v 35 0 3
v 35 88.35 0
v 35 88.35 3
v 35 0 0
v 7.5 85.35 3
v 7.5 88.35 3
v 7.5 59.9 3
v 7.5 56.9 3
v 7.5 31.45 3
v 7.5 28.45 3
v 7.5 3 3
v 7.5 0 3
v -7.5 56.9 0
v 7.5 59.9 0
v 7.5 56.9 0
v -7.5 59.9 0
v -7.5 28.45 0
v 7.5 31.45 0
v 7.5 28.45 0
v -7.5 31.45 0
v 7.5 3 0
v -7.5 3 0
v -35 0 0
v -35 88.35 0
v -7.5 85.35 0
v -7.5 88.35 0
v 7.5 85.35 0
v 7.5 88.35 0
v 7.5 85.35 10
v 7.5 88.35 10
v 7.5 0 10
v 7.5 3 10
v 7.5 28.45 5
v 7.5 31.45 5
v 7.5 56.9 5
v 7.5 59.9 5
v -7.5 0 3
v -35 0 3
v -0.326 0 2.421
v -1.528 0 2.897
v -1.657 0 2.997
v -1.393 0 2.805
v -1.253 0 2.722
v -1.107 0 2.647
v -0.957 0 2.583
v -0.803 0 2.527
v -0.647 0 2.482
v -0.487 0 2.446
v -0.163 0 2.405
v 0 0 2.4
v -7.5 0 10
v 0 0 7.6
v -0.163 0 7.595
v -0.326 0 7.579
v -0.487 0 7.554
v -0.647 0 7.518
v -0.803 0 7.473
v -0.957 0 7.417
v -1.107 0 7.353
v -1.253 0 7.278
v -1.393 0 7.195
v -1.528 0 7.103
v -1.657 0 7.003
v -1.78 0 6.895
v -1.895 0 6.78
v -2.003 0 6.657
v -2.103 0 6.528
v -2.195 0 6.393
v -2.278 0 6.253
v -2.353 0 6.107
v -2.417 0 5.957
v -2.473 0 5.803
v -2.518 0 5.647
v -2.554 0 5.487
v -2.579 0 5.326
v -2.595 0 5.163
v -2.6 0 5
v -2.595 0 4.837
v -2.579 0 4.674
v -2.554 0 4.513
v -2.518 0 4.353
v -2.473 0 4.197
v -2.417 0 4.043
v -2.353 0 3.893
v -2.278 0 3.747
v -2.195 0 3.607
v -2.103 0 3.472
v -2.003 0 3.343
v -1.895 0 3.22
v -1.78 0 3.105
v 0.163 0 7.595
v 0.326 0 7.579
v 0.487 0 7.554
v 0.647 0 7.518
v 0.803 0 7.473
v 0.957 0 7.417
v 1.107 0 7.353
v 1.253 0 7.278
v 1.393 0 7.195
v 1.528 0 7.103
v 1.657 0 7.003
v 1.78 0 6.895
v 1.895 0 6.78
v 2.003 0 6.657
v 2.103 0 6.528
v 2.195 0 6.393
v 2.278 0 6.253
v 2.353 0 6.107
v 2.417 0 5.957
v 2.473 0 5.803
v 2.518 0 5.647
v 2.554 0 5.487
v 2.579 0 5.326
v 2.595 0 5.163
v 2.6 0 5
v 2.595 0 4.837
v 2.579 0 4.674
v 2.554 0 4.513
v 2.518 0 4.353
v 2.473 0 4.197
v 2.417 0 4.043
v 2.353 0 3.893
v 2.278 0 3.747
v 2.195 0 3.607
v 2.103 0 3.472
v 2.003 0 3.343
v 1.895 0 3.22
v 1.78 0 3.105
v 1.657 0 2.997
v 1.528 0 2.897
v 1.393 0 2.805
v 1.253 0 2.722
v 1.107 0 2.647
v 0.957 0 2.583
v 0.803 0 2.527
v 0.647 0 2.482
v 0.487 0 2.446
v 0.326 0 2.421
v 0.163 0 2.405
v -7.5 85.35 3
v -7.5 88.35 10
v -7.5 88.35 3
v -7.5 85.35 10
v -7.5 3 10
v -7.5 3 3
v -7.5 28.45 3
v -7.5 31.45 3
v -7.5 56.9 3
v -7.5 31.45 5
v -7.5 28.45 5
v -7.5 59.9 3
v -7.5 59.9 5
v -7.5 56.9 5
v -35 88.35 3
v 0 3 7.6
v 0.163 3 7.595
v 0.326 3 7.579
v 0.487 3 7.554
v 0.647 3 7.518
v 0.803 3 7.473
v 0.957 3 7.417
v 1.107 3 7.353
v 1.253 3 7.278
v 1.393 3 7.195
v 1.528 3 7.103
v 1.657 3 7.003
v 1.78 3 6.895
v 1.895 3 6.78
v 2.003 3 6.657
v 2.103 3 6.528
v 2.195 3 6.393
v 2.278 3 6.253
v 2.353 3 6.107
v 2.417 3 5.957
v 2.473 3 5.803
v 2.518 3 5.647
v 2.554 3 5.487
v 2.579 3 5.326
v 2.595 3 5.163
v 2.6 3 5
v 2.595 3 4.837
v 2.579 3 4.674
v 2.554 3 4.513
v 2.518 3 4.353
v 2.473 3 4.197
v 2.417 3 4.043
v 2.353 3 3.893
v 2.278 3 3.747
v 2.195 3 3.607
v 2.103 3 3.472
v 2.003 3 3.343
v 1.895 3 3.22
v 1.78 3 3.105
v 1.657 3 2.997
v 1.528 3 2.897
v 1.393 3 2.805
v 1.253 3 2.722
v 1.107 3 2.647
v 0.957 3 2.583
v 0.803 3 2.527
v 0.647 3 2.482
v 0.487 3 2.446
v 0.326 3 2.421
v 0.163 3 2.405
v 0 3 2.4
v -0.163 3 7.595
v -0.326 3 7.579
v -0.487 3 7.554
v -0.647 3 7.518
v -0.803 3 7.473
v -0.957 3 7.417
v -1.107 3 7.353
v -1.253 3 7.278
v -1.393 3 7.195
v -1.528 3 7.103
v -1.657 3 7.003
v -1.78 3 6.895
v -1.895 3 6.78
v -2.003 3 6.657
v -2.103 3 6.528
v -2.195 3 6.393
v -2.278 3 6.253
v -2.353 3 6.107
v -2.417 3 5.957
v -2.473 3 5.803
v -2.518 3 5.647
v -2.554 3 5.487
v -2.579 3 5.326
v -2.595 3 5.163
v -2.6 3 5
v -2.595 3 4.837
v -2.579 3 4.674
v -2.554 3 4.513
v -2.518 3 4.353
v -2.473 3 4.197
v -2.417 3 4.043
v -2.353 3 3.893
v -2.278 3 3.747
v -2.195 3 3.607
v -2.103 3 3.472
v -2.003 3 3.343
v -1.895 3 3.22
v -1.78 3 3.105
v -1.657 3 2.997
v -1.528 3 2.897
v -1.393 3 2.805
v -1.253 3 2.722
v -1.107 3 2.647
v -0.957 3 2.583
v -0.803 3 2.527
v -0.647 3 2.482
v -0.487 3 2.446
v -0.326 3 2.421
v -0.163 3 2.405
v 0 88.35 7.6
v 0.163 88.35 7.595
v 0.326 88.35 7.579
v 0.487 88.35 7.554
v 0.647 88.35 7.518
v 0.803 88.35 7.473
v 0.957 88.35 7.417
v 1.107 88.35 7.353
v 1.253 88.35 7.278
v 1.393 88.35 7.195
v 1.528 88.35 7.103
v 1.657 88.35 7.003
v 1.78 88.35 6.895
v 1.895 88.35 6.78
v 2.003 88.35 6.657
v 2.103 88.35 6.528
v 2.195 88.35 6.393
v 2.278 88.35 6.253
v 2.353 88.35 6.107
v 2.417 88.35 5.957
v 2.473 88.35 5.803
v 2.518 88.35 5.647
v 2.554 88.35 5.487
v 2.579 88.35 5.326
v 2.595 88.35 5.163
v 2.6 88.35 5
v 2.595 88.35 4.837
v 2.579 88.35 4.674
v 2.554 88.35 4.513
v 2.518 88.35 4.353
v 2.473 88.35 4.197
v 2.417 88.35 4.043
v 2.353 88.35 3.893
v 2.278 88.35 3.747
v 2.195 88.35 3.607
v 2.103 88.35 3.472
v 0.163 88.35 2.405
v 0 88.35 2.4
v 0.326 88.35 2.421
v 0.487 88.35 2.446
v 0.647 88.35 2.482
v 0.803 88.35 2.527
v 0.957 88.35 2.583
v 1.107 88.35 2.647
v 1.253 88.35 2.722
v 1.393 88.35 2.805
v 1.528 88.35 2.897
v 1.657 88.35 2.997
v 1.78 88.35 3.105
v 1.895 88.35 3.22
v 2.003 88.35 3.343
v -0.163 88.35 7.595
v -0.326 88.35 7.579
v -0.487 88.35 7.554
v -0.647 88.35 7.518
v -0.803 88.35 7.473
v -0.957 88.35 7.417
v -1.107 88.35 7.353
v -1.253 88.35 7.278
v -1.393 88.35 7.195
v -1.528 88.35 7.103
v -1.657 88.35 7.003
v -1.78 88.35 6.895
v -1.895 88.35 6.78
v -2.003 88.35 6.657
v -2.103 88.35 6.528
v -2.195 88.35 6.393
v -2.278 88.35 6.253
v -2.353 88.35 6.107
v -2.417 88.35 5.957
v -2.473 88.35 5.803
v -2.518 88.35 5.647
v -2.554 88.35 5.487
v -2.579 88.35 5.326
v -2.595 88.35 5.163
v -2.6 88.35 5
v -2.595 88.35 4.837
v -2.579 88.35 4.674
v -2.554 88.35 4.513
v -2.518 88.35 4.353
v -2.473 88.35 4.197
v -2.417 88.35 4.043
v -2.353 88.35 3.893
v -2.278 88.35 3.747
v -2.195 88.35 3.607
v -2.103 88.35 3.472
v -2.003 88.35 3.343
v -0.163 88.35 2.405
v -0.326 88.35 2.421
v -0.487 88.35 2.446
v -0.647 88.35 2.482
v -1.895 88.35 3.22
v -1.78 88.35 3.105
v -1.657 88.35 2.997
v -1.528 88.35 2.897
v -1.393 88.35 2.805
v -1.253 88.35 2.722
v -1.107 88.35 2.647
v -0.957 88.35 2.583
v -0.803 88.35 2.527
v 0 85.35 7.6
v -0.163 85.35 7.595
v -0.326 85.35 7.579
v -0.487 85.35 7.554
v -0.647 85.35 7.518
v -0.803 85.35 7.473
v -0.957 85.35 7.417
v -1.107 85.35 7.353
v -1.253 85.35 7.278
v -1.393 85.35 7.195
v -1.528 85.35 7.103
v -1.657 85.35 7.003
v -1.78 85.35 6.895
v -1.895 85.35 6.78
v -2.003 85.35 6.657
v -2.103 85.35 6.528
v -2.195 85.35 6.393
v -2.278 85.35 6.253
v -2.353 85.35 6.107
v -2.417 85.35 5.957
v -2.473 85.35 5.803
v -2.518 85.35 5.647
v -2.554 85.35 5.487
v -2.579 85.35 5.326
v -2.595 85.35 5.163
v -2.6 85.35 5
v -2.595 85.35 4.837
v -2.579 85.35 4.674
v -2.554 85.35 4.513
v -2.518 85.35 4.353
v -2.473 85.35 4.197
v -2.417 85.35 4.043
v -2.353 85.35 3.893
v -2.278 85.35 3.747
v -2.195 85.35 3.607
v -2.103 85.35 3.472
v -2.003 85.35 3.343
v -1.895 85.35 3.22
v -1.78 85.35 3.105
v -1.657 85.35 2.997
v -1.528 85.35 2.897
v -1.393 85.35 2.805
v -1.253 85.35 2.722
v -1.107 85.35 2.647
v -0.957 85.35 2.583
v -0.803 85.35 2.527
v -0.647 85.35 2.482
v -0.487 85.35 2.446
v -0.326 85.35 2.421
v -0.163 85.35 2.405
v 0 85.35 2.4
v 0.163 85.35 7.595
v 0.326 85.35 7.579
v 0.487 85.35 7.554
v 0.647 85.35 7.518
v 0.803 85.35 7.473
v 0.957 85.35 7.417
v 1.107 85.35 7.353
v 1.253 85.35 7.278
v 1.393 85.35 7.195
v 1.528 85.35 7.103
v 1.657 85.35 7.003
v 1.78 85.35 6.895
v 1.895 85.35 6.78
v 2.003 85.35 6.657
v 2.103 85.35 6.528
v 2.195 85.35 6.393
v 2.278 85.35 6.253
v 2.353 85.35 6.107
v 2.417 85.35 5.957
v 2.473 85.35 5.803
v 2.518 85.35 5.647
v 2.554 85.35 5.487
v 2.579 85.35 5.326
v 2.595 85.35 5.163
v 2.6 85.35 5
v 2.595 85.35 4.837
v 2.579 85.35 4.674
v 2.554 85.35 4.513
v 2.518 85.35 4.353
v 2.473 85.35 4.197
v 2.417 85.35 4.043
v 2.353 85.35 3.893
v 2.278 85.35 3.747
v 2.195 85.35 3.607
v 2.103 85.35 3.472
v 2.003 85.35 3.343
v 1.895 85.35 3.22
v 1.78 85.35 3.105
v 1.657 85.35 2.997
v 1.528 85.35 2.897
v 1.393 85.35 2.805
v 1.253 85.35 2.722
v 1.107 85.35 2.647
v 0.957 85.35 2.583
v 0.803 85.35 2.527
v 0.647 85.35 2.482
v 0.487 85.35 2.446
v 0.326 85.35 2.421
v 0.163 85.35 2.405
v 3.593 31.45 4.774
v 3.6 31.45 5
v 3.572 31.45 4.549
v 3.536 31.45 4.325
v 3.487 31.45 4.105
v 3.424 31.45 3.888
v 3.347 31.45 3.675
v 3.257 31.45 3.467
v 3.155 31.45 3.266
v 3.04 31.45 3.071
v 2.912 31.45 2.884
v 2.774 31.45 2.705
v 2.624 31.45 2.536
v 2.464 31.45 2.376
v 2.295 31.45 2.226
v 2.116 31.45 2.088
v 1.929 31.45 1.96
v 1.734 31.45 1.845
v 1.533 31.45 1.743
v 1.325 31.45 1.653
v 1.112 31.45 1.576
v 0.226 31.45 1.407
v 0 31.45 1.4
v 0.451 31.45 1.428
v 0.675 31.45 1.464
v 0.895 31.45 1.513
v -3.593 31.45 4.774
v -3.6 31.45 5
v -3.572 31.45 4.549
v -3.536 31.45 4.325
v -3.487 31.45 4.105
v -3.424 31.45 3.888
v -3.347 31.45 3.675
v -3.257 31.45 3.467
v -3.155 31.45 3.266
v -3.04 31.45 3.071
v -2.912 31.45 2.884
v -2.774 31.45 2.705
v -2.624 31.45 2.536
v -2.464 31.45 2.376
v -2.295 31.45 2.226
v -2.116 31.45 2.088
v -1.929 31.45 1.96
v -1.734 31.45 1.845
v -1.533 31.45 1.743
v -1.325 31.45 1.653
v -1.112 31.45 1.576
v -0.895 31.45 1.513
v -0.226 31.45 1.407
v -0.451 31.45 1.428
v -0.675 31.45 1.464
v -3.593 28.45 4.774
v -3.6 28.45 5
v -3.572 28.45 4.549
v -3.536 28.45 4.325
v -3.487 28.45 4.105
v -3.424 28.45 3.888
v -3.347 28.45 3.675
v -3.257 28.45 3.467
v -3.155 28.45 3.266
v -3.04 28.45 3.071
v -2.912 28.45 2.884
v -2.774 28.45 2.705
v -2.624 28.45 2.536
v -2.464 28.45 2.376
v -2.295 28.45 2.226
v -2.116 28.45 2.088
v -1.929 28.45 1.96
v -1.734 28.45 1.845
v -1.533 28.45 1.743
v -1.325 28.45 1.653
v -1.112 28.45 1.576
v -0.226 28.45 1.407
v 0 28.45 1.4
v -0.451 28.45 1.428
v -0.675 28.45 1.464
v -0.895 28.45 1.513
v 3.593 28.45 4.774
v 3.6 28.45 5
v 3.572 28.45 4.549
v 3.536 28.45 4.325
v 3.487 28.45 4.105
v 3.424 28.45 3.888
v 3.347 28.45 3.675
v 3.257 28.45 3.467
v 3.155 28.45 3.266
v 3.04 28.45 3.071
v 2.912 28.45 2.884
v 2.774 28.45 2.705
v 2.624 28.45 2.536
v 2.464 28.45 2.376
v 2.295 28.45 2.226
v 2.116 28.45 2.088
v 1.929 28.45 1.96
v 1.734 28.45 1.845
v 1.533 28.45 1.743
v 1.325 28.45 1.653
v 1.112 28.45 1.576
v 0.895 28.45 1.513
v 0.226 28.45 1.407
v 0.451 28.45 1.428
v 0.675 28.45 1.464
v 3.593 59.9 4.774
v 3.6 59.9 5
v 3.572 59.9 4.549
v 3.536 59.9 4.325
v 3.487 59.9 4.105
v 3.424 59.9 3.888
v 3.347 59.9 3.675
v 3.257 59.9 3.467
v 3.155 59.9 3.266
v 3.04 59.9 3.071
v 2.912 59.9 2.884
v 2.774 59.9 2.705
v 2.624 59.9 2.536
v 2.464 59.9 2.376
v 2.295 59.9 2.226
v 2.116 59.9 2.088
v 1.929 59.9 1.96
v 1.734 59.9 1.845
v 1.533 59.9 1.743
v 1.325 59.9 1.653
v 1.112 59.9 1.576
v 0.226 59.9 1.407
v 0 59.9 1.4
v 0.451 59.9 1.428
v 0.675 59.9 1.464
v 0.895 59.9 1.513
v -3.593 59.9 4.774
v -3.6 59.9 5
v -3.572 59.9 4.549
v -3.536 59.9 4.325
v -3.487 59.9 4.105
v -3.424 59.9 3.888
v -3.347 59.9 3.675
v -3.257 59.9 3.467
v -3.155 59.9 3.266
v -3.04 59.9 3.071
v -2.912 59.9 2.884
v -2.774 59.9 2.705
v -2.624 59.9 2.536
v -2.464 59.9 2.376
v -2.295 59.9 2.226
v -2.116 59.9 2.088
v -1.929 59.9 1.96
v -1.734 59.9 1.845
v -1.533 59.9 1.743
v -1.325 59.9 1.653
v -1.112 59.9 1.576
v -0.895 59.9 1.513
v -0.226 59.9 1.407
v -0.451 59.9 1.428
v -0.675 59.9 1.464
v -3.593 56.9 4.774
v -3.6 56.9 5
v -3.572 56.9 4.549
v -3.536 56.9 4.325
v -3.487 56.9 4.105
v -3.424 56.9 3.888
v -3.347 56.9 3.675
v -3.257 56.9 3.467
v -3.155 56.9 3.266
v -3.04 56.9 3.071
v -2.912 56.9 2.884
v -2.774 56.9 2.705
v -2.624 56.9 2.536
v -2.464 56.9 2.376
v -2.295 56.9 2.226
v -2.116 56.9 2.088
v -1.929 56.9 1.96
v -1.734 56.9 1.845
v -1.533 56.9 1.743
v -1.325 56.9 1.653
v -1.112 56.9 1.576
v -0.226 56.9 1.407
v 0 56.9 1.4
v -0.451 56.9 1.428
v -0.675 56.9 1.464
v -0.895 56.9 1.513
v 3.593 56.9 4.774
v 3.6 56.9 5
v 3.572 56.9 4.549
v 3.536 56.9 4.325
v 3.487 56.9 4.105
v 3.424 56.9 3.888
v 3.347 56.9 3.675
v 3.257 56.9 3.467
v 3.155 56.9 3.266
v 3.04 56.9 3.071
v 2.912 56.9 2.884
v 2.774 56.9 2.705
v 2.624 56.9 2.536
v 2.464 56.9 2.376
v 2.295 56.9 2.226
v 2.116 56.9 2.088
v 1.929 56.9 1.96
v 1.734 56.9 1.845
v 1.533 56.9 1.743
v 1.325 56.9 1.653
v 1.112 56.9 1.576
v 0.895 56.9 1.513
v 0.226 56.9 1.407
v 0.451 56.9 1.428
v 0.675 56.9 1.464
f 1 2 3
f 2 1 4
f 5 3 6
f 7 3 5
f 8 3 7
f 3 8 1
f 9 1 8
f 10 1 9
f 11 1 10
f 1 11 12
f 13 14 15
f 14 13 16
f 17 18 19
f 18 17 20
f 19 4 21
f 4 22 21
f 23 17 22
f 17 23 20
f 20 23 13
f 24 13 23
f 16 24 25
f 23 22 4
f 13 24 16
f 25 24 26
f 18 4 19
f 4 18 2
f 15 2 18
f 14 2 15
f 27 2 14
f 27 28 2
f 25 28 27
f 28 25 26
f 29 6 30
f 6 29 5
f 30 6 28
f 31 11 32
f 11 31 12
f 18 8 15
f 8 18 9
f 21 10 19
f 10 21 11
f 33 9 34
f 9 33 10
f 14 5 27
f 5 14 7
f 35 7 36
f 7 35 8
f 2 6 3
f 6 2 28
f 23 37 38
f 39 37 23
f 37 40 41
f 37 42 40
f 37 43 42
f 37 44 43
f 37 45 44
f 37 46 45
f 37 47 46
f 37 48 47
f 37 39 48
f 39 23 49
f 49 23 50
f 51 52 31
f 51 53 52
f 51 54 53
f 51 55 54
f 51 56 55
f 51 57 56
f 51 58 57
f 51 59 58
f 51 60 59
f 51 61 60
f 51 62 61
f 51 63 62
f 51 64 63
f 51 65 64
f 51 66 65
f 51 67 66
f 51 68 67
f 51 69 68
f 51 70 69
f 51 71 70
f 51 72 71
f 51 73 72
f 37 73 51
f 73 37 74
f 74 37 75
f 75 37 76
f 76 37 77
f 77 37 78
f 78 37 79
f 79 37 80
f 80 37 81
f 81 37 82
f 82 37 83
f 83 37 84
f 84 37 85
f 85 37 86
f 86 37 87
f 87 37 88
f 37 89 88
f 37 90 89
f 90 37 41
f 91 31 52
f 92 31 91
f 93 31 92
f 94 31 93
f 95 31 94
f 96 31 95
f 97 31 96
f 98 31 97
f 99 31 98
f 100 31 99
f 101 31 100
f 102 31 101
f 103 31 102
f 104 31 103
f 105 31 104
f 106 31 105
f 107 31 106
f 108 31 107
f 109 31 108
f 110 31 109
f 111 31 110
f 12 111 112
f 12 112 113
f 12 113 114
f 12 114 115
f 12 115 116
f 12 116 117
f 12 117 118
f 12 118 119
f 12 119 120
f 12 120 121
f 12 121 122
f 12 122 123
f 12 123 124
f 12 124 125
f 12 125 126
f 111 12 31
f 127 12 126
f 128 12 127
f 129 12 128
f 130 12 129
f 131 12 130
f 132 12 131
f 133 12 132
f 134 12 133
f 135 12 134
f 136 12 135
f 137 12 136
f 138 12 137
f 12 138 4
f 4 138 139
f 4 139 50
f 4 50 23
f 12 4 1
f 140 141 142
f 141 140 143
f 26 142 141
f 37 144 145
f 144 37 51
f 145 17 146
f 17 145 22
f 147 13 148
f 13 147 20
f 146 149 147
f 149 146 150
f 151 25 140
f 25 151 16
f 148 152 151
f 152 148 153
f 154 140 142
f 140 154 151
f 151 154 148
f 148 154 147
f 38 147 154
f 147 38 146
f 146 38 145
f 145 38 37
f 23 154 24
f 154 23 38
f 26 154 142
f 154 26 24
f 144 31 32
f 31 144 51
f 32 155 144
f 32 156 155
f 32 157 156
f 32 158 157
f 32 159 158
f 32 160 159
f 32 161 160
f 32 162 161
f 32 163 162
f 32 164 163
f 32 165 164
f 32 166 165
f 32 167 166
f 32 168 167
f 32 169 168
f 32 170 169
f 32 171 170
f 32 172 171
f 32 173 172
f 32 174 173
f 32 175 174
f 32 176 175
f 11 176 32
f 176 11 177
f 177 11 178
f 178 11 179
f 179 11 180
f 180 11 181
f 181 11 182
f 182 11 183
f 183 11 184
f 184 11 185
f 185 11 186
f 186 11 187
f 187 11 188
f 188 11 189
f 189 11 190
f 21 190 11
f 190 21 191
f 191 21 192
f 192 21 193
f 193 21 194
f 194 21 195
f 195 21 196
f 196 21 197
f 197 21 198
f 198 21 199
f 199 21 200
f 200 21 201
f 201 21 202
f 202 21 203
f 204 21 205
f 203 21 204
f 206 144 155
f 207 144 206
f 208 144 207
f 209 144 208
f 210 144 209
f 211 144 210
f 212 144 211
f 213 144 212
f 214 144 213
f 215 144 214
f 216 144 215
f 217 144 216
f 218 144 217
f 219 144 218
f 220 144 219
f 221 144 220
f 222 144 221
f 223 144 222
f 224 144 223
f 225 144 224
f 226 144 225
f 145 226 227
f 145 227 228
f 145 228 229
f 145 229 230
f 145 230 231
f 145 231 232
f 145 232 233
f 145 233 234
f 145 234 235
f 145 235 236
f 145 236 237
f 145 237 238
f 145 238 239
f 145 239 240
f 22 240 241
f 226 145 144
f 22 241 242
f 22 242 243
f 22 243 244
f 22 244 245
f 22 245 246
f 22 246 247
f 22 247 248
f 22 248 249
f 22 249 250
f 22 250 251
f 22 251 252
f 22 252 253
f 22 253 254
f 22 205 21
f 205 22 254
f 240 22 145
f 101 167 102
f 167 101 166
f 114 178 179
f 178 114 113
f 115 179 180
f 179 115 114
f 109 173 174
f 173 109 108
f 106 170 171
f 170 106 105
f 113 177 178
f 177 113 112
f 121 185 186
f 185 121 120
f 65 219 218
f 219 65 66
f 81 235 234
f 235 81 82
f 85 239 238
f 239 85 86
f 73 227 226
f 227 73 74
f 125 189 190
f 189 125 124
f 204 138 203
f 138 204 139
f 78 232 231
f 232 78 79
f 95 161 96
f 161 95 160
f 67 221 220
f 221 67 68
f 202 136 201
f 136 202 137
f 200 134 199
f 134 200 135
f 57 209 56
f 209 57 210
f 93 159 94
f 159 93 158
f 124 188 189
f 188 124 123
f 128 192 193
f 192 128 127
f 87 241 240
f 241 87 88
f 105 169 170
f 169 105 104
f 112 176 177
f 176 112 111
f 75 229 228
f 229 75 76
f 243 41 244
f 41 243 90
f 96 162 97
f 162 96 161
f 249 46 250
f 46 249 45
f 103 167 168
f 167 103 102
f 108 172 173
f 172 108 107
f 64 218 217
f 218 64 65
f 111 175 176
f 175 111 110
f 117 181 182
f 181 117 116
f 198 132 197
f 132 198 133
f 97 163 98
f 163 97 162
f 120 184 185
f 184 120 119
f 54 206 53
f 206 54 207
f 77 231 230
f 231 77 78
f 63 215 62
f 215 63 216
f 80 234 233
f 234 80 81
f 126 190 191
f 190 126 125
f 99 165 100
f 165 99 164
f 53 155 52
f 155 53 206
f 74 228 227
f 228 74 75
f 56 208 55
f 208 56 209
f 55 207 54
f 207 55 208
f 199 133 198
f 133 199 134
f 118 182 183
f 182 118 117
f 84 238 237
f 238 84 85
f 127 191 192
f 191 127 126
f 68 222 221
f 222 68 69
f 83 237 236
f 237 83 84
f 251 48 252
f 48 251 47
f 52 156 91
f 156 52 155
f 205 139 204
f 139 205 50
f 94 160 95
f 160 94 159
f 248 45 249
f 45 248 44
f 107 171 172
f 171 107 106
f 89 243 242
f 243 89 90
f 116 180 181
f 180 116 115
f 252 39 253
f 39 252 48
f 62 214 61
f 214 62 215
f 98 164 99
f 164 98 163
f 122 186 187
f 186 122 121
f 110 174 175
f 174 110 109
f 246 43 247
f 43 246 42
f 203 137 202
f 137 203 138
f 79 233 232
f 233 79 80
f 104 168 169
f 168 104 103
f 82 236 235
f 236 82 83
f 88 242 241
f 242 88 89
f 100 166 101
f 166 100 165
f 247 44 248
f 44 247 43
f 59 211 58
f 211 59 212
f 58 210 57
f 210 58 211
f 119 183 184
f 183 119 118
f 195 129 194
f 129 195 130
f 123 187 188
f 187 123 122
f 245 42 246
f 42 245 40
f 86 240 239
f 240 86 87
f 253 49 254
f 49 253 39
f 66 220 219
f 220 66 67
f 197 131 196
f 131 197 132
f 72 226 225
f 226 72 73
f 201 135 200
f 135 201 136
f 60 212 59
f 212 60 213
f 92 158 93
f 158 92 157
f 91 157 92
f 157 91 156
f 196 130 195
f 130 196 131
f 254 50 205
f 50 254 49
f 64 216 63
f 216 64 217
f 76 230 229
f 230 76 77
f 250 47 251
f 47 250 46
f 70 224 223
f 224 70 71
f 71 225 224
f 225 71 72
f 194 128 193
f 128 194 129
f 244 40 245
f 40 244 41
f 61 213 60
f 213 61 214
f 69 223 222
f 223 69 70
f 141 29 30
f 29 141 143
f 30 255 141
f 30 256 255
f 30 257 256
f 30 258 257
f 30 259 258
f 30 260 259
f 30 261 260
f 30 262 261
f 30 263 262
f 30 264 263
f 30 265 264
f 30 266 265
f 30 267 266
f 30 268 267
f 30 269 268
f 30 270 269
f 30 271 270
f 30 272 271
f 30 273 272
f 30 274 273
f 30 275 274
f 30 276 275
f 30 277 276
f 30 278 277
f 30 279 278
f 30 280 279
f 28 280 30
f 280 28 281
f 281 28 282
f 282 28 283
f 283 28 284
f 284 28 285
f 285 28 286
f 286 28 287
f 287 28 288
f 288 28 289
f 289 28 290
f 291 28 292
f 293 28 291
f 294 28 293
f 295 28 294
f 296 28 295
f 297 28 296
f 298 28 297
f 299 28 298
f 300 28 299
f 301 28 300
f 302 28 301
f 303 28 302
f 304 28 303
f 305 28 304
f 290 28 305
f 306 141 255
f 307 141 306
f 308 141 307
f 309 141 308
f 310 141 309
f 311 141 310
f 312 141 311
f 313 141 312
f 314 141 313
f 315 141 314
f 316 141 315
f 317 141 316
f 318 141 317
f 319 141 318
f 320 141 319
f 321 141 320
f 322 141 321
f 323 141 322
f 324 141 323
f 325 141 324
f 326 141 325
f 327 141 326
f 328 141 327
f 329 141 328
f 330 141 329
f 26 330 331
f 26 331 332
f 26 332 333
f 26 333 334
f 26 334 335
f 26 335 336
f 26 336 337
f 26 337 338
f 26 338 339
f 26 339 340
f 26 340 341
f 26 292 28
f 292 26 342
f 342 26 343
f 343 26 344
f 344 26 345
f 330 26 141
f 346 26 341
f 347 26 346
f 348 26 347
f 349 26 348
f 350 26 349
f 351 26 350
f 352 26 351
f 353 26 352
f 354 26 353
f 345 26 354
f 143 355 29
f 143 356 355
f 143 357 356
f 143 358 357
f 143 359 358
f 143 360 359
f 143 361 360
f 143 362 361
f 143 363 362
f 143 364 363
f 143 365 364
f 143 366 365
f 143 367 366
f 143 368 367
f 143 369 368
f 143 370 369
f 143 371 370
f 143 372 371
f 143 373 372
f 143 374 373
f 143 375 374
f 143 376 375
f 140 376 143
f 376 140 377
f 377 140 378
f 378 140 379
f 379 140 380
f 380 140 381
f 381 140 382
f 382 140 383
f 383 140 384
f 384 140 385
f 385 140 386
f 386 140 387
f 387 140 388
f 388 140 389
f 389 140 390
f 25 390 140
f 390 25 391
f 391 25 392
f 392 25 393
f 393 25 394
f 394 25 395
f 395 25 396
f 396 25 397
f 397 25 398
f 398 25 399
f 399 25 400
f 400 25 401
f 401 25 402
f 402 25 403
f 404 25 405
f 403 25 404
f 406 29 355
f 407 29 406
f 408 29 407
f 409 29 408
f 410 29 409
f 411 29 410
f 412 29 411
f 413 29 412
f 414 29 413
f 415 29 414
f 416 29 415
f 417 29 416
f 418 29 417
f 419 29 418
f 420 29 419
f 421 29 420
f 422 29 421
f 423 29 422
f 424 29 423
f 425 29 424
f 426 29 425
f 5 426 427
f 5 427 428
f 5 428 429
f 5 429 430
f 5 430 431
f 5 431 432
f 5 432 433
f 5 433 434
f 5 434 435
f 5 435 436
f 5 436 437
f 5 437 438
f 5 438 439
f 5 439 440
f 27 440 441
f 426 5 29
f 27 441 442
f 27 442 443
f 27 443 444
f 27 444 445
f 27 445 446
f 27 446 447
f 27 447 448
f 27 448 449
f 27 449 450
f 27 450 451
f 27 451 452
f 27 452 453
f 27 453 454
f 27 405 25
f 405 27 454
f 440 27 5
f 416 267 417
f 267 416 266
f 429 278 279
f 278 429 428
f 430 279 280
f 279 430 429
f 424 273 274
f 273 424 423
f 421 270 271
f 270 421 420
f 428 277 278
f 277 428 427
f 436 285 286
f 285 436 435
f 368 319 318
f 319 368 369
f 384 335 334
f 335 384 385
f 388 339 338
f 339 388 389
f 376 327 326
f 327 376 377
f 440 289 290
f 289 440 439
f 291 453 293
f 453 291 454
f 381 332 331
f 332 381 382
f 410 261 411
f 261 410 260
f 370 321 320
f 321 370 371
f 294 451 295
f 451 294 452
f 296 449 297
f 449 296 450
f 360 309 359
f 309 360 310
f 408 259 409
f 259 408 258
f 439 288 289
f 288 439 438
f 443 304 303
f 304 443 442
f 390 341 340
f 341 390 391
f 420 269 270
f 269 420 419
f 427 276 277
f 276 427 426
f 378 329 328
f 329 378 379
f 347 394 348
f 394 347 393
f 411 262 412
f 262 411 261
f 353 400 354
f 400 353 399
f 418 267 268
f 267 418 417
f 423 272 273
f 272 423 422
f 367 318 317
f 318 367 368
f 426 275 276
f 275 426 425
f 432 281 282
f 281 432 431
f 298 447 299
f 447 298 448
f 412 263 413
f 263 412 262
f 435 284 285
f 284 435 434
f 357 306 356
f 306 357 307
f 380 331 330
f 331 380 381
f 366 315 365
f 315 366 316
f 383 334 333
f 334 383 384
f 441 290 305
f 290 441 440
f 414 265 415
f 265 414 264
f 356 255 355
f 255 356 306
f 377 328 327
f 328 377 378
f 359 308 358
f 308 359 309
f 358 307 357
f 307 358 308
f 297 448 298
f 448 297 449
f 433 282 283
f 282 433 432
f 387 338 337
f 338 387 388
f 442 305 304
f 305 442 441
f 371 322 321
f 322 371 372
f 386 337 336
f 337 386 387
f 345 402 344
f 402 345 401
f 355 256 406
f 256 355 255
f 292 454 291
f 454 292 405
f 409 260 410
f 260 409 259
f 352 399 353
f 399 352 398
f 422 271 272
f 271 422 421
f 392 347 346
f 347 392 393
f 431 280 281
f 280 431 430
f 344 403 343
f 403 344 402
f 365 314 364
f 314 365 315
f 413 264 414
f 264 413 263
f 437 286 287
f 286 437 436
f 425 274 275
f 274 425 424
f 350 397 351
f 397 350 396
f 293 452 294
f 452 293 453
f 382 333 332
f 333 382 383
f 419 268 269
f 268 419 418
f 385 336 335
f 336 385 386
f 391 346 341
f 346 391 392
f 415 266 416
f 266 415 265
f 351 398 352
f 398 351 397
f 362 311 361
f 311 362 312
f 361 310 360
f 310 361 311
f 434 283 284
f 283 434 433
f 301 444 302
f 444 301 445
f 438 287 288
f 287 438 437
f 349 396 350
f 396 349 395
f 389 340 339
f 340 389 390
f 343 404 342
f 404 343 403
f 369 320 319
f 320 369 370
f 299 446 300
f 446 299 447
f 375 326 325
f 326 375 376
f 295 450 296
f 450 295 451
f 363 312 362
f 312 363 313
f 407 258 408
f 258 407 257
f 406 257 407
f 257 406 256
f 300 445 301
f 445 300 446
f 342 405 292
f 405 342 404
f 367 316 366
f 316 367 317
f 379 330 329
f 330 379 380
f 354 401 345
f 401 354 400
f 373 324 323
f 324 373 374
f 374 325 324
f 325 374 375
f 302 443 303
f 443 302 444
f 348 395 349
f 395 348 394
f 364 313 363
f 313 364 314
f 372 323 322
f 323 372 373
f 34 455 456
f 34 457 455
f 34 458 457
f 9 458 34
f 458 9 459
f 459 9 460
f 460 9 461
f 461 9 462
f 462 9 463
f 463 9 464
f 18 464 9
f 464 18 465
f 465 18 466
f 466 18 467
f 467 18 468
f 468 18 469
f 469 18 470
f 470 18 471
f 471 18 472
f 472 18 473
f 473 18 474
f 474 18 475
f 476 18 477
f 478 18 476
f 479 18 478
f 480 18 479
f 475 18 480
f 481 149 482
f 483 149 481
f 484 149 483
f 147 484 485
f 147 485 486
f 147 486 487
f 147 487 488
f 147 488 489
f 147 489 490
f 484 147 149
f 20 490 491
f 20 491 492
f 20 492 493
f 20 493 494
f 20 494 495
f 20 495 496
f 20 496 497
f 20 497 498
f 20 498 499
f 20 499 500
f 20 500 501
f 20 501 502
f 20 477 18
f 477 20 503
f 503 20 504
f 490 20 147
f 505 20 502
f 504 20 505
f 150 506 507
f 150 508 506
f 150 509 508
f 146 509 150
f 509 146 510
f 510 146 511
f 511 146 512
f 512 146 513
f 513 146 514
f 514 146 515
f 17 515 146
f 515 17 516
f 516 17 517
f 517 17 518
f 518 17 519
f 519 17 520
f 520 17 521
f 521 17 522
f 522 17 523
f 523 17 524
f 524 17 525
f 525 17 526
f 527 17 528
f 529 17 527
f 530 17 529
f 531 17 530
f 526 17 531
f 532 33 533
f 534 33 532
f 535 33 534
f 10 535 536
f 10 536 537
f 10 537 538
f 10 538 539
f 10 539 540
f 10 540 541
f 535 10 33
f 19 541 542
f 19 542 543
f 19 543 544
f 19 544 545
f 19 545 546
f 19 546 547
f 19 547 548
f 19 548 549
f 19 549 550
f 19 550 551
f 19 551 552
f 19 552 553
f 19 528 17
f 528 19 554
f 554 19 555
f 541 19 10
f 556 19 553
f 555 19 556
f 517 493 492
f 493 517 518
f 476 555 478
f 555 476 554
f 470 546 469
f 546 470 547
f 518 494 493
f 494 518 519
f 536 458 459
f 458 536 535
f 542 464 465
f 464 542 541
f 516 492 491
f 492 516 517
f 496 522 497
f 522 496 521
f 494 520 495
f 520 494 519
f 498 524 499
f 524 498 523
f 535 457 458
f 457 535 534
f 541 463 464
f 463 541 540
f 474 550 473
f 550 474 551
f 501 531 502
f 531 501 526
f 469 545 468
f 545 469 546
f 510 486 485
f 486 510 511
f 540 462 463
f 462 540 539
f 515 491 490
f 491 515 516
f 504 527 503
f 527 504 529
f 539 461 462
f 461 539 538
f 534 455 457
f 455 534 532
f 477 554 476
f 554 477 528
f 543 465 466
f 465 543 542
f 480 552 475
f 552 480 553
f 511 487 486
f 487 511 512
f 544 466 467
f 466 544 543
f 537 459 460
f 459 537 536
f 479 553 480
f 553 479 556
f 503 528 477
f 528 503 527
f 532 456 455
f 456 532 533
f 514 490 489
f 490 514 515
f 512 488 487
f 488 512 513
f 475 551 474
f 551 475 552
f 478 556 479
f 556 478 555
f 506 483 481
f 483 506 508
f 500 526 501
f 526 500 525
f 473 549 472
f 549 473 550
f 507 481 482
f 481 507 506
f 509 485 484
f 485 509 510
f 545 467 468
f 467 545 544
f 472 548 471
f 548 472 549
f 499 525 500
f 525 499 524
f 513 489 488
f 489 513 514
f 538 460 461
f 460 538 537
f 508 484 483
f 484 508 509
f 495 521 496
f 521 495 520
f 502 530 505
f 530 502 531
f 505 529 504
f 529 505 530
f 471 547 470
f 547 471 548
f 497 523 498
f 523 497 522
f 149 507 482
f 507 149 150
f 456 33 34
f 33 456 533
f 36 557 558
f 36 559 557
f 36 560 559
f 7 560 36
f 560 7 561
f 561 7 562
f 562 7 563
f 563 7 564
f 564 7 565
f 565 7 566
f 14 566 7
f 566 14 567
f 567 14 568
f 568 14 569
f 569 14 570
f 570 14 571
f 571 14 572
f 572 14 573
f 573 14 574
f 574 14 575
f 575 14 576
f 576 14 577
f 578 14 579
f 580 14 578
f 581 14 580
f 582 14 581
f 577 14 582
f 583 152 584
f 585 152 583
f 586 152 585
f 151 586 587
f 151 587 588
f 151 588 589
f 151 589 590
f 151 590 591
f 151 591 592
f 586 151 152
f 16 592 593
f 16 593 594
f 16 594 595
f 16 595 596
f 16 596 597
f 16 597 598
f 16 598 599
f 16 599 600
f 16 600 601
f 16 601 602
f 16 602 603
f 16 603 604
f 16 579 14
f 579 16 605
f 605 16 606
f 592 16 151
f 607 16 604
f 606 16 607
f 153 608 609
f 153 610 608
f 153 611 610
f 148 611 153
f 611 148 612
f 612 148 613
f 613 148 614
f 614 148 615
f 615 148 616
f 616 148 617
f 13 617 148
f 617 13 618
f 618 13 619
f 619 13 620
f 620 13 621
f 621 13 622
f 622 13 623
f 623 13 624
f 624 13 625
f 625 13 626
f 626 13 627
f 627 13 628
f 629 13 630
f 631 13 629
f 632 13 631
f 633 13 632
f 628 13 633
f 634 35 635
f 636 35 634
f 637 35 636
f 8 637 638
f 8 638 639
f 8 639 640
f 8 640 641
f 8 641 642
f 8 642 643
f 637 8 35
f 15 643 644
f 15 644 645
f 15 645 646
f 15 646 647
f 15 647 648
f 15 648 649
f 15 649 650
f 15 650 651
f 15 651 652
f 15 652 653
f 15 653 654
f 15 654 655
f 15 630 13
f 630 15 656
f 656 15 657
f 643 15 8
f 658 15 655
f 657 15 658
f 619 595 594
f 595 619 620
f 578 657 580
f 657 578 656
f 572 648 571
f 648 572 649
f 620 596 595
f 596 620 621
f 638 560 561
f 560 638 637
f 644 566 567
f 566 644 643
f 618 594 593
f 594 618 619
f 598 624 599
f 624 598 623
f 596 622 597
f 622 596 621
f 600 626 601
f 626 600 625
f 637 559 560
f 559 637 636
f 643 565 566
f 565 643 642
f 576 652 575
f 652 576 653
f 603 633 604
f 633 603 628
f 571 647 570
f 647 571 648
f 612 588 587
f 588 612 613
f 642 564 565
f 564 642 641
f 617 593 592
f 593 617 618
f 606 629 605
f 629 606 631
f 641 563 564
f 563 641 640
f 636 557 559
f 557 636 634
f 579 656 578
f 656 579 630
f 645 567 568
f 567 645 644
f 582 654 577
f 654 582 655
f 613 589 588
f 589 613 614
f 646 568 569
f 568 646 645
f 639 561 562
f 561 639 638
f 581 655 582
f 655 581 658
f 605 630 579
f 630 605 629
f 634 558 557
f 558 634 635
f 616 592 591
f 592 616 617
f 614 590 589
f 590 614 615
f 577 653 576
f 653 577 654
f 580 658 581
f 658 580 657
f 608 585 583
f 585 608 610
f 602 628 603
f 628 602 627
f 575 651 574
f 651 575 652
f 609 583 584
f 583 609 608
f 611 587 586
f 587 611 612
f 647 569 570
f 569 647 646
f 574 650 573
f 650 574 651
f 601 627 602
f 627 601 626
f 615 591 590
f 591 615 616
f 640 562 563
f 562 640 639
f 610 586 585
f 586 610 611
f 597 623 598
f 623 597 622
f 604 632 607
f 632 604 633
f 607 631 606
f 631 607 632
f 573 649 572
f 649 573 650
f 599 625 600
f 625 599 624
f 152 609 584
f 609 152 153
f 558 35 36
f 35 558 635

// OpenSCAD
// Set $fn to 20-50 for 3D printing
// Sizes in mm
$fn = 100;

// Magnet slot constants
slot_height = 10;
slot_width = 70;
slot_depth = 88.35;

// Design constants
tolerance = 0.2;
nmr_tube_diameter = 5 + tolerance;
coil_tube_diameter = 7 + tolerance;
tube_holder_width = 15;
global_thickness = 3;

// Calculated

module single_inset(width, depth, thickness)
{
    translate(v = [ -width / 2, 0, 0 ])
    {
        cube(size = [ width, depth, thickness ], center = false);
    }
}

module inset()
{
    inset_width = (slot_width - tube_holder_width) / 2;
    inset_offset = (tube_holder_width + inset_width) / 2;

    translate(v = [ inset_offset, 0, 0 ])
    {
        single_inset(width = inset_width, depth = slot_depth, thickness = global_thickness);
    }

    translate(v = [ -inset_offset, 0, 0 ])
    {
        single_inset(width = inset_width, depth = slot_depth, thickness = global_thickness);
    }
}

module tube(diameter = nmr_tube_diameter, length = global_thickness + tolerance)
{
    translate(v = [ 0, global_thickness / 2, slot_height / 2 ])
    {
        rotate(a = [ 90, 0, 0 ])
        {
            cylinder(h = length, r = diameter / 2, center = true);
        }
    }
}

module tube_holder()
{
    translate(v = [ -tube_holder_width / 2, 0, 0 ])
    {
        cube(size = [ tube_holder_width, global_thickness, slot_height ], center = false);
    }
}

module nmr_tube_holder()
{
    difference()
    {
        tube_holder();
        tube();
    }
}

module coil_tube_holder()
{
    difference()
    {
        tube_holder();
        tube(diameter = coil_tube_diameter);
        translate(v = [ -tube_holder_width / 2 - tolerance / 2, -tolerance / 2, slot_height / 2 ])
        {
            cube(size = [ tube_holder_width + tolerance, global_thickness + tolerance, slot_height + tolerance ],
                 center = false);
        }
    }
}

module holder()
{
    nmr_tube_holder();

    translate(v = [ 0, slot_depth - global_thickness, 0 ])
    {
        nmr_tube_holder();
    }

    translate(v = [ 0, (slot_depth - global_thickness) / 3, 0 ])
    {
        coil_tube_holder();
    }

    translate(v = [ 0, (slot_depth - global_thickness) / 3 * 2, 0 ])
    {
        coil_tube_holder();
    }
}

inset();
holder();
